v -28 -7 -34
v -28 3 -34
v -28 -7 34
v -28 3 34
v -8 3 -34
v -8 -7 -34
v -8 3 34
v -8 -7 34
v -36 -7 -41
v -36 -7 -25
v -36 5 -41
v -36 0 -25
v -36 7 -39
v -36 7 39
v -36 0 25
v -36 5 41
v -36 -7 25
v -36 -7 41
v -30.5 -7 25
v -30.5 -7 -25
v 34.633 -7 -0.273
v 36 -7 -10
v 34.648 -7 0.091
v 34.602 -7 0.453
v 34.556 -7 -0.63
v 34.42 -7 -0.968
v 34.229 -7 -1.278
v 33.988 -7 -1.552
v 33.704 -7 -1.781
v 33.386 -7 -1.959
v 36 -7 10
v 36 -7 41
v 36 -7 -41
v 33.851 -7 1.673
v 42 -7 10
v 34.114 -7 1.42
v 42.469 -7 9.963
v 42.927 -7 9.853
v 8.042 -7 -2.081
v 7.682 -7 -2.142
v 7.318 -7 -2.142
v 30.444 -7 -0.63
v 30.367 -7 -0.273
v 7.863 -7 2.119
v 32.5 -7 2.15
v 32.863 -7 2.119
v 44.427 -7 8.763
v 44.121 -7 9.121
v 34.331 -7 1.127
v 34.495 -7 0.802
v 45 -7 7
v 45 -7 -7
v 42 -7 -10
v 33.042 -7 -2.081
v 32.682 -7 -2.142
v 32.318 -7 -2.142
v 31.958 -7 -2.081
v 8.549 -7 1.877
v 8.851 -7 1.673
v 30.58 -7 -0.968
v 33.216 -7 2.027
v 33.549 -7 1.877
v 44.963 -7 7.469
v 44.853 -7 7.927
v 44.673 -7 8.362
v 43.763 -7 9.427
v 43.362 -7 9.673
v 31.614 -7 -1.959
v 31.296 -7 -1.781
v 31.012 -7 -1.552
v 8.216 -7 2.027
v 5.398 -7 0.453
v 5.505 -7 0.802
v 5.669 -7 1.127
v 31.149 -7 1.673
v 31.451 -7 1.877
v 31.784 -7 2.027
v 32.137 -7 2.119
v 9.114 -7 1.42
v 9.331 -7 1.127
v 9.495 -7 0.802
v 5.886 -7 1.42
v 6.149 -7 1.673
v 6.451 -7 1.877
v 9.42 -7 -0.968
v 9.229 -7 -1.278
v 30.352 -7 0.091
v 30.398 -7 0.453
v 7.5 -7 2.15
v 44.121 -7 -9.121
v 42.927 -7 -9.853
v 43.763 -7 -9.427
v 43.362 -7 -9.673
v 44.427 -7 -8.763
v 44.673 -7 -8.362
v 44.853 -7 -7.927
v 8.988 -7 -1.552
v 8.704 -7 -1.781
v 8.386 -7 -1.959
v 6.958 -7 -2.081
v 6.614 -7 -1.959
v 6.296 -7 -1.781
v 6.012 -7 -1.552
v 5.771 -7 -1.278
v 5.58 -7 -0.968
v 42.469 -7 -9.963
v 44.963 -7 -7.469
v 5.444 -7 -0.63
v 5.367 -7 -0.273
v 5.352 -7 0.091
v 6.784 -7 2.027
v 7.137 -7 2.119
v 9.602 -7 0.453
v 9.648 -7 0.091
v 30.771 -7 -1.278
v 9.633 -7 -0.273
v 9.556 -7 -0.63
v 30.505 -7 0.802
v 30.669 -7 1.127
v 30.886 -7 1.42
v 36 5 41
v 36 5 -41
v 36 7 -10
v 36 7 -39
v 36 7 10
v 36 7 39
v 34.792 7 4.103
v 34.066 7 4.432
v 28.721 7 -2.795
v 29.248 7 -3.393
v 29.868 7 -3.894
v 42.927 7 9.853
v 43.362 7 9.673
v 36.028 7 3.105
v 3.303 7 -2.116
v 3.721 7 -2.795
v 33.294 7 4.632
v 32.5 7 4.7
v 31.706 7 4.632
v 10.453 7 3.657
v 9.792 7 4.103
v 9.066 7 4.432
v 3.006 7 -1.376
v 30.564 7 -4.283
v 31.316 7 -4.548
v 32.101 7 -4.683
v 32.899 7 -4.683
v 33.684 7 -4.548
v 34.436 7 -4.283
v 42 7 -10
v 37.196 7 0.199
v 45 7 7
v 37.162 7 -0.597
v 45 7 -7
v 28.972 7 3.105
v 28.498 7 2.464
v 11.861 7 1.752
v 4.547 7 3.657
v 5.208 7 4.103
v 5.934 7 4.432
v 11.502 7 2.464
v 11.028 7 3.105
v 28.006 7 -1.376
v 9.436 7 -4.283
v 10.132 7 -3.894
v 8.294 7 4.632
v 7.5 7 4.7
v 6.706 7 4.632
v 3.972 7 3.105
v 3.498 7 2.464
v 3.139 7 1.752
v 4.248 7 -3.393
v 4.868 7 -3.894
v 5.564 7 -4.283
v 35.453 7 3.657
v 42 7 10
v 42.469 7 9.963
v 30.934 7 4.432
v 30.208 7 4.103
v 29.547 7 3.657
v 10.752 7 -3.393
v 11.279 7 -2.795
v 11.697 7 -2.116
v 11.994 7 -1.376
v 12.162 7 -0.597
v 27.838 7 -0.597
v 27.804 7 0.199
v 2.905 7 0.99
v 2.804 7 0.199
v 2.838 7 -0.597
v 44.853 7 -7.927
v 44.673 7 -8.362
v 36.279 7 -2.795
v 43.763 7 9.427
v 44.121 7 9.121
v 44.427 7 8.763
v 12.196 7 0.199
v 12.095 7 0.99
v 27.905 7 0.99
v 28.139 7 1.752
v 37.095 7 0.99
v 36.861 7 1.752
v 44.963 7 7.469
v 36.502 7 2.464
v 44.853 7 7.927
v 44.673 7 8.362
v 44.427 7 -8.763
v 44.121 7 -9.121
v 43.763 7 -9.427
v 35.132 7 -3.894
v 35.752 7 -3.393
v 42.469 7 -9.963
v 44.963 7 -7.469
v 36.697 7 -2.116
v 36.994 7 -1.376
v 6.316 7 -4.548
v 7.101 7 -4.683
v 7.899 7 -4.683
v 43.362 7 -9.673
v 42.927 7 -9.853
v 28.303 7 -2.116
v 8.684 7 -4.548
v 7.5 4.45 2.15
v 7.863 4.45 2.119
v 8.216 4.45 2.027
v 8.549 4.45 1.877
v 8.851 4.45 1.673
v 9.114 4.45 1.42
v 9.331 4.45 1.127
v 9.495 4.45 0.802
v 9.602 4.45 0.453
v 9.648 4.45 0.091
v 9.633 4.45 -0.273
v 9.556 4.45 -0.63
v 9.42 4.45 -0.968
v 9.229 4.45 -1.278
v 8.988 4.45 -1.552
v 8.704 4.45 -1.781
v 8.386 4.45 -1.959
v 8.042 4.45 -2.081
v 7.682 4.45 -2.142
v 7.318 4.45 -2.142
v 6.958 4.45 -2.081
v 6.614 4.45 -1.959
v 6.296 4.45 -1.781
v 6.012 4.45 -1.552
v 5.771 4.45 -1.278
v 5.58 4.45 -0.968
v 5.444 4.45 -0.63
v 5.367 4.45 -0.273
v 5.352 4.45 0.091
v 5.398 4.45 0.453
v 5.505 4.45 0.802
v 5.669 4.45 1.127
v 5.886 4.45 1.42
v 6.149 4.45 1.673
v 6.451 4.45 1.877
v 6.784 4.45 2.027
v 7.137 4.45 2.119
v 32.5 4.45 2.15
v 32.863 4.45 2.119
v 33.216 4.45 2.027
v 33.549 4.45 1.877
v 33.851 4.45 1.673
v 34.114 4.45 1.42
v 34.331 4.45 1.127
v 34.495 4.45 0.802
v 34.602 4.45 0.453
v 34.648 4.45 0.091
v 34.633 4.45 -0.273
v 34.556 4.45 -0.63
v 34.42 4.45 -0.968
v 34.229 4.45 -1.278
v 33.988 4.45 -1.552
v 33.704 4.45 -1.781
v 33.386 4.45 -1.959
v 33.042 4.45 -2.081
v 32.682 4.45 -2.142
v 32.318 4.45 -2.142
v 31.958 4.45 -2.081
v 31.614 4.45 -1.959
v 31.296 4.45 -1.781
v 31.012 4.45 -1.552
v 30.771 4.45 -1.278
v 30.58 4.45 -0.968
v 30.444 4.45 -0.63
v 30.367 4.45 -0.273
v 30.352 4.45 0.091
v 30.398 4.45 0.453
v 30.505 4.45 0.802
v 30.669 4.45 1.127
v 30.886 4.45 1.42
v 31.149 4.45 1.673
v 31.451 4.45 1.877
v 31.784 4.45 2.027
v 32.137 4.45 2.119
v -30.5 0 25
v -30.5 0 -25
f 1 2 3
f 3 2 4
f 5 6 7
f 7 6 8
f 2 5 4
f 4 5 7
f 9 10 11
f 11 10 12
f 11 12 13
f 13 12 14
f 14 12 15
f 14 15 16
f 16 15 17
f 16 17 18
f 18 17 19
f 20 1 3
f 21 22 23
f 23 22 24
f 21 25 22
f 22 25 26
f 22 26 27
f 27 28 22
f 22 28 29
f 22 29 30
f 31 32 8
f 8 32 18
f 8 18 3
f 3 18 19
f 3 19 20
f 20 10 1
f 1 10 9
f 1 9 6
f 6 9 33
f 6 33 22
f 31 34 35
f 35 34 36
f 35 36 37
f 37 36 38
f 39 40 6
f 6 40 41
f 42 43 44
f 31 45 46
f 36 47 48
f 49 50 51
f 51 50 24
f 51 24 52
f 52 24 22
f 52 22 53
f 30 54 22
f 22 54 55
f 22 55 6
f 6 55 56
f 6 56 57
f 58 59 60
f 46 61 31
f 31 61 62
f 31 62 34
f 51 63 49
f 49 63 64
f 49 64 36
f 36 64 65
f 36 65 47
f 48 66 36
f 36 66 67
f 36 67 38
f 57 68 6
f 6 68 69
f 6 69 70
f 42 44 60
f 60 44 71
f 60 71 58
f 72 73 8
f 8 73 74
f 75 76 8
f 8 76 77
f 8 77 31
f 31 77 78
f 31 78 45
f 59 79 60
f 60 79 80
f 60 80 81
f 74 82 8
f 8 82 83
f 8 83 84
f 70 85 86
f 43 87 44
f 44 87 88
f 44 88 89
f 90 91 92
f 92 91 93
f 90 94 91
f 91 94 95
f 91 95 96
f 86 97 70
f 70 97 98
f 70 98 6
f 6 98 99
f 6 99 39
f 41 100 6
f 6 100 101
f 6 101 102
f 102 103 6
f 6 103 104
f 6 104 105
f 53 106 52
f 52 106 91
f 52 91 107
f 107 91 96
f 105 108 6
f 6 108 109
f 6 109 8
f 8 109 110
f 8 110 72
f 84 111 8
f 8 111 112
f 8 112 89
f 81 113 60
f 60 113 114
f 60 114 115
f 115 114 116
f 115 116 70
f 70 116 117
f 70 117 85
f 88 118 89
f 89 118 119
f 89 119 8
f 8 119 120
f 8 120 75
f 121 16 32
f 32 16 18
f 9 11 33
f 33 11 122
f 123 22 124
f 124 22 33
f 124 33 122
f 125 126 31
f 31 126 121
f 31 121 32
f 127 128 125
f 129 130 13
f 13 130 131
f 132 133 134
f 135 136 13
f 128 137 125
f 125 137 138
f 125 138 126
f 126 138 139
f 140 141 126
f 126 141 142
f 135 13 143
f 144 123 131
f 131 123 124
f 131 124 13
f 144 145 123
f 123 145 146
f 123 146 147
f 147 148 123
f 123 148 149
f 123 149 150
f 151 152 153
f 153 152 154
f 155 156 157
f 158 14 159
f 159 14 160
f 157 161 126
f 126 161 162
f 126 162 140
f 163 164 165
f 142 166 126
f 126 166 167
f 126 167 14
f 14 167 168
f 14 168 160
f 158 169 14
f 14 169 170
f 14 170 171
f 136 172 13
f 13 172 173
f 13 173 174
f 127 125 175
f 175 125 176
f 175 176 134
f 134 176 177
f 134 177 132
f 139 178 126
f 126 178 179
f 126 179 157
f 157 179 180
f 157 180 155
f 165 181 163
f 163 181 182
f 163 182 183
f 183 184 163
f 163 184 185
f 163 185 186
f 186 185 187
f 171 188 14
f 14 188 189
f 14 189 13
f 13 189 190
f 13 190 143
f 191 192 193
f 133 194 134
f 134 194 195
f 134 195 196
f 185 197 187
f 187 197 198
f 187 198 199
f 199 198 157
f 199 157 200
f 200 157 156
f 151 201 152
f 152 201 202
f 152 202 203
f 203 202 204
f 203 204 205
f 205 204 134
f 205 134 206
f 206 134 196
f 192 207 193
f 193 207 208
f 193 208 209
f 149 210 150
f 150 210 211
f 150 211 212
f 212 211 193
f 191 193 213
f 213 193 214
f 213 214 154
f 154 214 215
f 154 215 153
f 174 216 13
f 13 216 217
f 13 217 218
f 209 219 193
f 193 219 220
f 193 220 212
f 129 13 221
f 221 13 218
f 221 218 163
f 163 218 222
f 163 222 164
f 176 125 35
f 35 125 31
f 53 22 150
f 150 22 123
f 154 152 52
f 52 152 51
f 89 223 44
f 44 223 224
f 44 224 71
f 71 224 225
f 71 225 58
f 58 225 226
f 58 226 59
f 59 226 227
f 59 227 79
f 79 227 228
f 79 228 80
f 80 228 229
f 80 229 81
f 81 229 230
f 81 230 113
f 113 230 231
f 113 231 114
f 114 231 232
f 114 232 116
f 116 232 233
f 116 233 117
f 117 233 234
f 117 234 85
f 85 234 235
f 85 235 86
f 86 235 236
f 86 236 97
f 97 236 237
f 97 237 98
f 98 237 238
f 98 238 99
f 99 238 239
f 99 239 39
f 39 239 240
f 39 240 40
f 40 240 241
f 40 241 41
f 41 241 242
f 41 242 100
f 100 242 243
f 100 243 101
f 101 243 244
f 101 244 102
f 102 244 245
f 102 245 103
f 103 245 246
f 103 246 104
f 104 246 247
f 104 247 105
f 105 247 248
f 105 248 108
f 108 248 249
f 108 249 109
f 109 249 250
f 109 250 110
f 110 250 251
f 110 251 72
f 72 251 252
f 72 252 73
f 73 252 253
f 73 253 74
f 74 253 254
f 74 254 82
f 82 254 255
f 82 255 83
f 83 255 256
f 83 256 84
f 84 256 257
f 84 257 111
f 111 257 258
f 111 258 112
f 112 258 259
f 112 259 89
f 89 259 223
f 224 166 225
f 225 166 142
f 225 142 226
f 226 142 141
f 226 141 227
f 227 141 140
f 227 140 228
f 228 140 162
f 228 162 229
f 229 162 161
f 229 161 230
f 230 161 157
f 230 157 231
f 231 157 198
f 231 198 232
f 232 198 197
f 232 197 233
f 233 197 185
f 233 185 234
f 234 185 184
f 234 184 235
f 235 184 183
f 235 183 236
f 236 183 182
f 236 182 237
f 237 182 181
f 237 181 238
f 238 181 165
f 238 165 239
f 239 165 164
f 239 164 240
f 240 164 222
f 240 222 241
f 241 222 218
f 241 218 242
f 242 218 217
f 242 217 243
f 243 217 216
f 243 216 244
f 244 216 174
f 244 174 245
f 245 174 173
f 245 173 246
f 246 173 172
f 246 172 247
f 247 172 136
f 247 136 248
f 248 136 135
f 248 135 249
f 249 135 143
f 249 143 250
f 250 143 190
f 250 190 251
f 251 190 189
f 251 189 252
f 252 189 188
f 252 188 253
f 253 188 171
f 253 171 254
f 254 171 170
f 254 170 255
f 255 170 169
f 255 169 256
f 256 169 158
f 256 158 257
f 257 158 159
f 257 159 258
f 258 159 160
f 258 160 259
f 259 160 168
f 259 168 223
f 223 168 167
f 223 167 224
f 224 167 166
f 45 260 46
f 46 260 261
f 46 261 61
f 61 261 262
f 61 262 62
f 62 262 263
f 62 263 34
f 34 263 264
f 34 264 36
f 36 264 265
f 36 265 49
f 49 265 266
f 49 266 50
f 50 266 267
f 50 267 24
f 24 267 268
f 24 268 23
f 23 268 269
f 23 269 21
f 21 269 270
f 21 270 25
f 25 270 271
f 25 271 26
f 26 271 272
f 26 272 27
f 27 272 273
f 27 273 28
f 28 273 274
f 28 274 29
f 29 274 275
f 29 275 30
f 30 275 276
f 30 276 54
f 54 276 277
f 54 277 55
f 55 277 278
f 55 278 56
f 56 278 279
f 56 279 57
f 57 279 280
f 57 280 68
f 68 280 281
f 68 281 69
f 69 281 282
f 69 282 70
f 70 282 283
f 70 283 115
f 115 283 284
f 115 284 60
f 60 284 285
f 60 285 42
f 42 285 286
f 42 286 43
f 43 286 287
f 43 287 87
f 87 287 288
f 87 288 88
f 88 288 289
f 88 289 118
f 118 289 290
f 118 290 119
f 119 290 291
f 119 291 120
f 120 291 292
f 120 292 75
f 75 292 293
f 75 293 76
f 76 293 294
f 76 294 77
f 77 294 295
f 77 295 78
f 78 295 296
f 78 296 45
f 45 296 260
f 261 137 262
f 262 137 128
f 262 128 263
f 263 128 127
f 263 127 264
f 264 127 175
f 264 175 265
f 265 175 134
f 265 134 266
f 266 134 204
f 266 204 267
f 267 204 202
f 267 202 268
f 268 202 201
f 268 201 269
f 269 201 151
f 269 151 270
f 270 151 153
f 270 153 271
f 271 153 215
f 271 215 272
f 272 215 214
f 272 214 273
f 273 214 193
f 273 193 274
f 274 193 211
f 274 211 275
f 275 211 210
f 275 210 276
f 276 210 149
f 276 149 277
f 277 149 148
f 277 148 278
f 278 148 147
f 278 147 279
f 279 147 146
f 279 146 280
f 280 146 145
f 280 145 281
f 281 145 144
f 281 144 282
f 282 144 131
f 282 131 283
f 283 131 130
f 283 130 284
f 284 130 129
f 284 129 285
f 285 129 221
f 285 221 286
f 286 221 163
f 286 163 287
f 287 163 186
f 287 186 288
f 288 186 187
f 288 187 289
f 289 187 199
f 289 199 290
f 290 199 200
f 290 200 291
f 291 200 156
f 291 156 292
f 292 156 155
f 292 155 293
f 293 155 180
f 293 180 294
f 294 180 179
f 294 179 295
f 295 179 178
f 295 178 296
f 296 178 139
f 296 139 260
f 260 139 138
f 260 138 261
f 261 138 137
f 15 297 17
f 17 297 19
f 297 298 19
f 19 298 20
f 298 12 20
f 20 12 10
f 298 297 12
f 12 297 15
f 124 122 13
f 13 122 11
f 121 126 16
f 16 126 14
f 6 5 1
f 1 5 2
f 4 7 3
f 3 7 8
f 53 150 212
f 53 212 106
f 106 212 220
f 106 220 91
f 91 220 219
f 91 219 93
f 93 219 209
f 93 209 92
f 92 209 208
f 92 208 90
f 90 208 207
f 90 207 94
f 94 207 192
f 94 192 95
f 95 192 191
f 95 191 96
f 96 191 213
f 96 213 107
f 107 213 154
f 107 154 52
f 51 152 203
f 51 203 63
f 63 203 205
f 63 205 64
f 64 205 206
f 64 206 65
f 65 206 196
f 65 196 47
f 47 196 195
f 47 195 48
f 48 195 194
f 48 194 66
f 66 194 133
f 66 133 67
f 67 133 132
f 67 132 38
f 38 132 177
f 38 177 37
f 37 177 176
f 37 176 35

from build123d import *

# Parameters (mm, degrees)
ESQUISSE2_W                                    = 72
ESQUISSE2_H                                    = 14
BOSS_EXTRU_1_DEPTH                             = 41
ESQUISSE12_W                                   = 9
ESQUISSE12_H                                   = 20
BOSS_EXTRU_6_DEPTH                             = 14
FRAISAGE_POUR_VIS_T_TE_FRAIS_E_M41_D           = 4.3
FRAISAGE_POUR_VIS_T_TE_FRAIS_E_M41_CSINK_D     = 9.4
FRAISAGE_POUR_VIS_T_TE_FRAIS_E_M41_CSINK_ANGLE = 90
ENL_V_MAT_EXTRU_3_REACH                        = 95.798
ESQUISSE6_W                                    = 20
ESQUISSE6_H                                    = 10
ESQUISSE5_W                                    = 5.5
ESQUISSE5_H                                    = 50
ENL_V_MAT_EXTRU_2_DEPTH                        = 7
CHANFREIN1_SIZE                                = 2
ESQUISSE16_W                                   = 20
ESQUISSE16_H                                   = 7
BOSS_EXTRU_7_DEPTH                             = 10
CONG_1_R                                       = 3


with BuildPart() as part:
    # Esquisse2 → Boss.-Extru.1 (new, symmetric)
    with BuildSketch(Plane.XY):
        Rectangle(ESQUISSE2_W, ESQUISSE2_H)
    extrude(amount=BOSS_EXTRU_1_DEPTH, both=True)

    # Esquisse12 → Boss.-Extru.6 (add)
    with BuildSketch(Plane(origin=(0, 7, 0), x_dir=(1, 0, 0), z_dir=(0, 1, 0))):
        with Locations((40.5, 0)):
            Rectangle(ESQUISSE12_W, ESQUISSE12_H)
    extrude(amount=-BOSS_EXTRU_6_DEPTH)

    # Fraisage pour vis à tête fraisée M41 (through all)
    with Locations(Plane(origin=(0, 7, 0), x_dir=(1, 0, 0), z_dir=(0, 1, 0))):
        with Locations((32.5, 0), (7.5, 0)):
            CounterSinkHole(FRAISAGE_POUR_VIS_T_TE_FRAIS_E_M41_D / 2, FRAISAGE_POUR_VIS_T_TE_FRAIS_E_M41_CSINK_D / 2, counter_sink_angle=FRAISAGE_POUR_VIS_T_TE_FRAIS_E_M41_CSINK_ANGLE)

    # Esquisse6 → Enlèv. mat.-Extru.3 (cut, up to next)
    with BuildSketch(Plane.XY.offset(-41), mode=Mode.PRIVATE) as enl_v_mat_extru_3_sk1:
        with Locations((-18, -2)):
            Rectangle(ESQUISSE6_W, ESQUISSE6_H)
    enl_v_mat_extru_3_tool1 = extrude(enl_v_mat_extru_3_sk1.sketch, amount=ENL_V_MAT_EXTRU_3_REACH, mode=Mode.PRIVATE) & part.part
    add(enl_v_mat_extru_3_tool1.solids().sort_by_distance((-18, -2, -41))[0], mode=Mode.SUBTRACT)

    # Esquisse5 → Enlèv. mat.-Extru.2 (cut)
    with BuildSketch(Plane(origin=(0, -7, 0), x_dir=(1, 0, 0), z_dir=(0, 1, 0))):
        with Locations((-33.25, 0)):
            Rectangle(ESQUISSE5_W, ESQUISSE5_H)
    extrude(amount=ENL_V_MAT_EXTRU_2_DEPTH, mode=Mode.SUBTRACT)

    # Chanfrein1
    chanfrein1_edges = [part.edges().sort_by_distance(p)[0] for p in [
        (0, 7, -41),
        (0, 7, 41),
    ]]
    chamfer(chanfrein1_edges, length=CHANFREIN1_SIZE)

    # Esquisse16 → Boss.-Extru.7 (add)
    with BuildSketch(Plane.XZ.offset(-3)):
        with Locations((-18, -37.5)):
            Rectangle(ESQUISSE16_W, ESQUISSE16_H)
    boss_extru_7 = extrude(amount=BOSS_EXTRU_7_DEPTH)

    # Symétrie1: Boss.-Extru.7 across plane
    add(boss_extru_7.mirror(Plane.XY))

    # Congé1
    cong_1_edges = [part.edges().sort_by_distance(p)[0] for p in [
        (45, 0, 10),
        (45, 0, -10),
    ]]
    fillet(cong_1_edges, radius=CONG_1_R)


solid = part.part
